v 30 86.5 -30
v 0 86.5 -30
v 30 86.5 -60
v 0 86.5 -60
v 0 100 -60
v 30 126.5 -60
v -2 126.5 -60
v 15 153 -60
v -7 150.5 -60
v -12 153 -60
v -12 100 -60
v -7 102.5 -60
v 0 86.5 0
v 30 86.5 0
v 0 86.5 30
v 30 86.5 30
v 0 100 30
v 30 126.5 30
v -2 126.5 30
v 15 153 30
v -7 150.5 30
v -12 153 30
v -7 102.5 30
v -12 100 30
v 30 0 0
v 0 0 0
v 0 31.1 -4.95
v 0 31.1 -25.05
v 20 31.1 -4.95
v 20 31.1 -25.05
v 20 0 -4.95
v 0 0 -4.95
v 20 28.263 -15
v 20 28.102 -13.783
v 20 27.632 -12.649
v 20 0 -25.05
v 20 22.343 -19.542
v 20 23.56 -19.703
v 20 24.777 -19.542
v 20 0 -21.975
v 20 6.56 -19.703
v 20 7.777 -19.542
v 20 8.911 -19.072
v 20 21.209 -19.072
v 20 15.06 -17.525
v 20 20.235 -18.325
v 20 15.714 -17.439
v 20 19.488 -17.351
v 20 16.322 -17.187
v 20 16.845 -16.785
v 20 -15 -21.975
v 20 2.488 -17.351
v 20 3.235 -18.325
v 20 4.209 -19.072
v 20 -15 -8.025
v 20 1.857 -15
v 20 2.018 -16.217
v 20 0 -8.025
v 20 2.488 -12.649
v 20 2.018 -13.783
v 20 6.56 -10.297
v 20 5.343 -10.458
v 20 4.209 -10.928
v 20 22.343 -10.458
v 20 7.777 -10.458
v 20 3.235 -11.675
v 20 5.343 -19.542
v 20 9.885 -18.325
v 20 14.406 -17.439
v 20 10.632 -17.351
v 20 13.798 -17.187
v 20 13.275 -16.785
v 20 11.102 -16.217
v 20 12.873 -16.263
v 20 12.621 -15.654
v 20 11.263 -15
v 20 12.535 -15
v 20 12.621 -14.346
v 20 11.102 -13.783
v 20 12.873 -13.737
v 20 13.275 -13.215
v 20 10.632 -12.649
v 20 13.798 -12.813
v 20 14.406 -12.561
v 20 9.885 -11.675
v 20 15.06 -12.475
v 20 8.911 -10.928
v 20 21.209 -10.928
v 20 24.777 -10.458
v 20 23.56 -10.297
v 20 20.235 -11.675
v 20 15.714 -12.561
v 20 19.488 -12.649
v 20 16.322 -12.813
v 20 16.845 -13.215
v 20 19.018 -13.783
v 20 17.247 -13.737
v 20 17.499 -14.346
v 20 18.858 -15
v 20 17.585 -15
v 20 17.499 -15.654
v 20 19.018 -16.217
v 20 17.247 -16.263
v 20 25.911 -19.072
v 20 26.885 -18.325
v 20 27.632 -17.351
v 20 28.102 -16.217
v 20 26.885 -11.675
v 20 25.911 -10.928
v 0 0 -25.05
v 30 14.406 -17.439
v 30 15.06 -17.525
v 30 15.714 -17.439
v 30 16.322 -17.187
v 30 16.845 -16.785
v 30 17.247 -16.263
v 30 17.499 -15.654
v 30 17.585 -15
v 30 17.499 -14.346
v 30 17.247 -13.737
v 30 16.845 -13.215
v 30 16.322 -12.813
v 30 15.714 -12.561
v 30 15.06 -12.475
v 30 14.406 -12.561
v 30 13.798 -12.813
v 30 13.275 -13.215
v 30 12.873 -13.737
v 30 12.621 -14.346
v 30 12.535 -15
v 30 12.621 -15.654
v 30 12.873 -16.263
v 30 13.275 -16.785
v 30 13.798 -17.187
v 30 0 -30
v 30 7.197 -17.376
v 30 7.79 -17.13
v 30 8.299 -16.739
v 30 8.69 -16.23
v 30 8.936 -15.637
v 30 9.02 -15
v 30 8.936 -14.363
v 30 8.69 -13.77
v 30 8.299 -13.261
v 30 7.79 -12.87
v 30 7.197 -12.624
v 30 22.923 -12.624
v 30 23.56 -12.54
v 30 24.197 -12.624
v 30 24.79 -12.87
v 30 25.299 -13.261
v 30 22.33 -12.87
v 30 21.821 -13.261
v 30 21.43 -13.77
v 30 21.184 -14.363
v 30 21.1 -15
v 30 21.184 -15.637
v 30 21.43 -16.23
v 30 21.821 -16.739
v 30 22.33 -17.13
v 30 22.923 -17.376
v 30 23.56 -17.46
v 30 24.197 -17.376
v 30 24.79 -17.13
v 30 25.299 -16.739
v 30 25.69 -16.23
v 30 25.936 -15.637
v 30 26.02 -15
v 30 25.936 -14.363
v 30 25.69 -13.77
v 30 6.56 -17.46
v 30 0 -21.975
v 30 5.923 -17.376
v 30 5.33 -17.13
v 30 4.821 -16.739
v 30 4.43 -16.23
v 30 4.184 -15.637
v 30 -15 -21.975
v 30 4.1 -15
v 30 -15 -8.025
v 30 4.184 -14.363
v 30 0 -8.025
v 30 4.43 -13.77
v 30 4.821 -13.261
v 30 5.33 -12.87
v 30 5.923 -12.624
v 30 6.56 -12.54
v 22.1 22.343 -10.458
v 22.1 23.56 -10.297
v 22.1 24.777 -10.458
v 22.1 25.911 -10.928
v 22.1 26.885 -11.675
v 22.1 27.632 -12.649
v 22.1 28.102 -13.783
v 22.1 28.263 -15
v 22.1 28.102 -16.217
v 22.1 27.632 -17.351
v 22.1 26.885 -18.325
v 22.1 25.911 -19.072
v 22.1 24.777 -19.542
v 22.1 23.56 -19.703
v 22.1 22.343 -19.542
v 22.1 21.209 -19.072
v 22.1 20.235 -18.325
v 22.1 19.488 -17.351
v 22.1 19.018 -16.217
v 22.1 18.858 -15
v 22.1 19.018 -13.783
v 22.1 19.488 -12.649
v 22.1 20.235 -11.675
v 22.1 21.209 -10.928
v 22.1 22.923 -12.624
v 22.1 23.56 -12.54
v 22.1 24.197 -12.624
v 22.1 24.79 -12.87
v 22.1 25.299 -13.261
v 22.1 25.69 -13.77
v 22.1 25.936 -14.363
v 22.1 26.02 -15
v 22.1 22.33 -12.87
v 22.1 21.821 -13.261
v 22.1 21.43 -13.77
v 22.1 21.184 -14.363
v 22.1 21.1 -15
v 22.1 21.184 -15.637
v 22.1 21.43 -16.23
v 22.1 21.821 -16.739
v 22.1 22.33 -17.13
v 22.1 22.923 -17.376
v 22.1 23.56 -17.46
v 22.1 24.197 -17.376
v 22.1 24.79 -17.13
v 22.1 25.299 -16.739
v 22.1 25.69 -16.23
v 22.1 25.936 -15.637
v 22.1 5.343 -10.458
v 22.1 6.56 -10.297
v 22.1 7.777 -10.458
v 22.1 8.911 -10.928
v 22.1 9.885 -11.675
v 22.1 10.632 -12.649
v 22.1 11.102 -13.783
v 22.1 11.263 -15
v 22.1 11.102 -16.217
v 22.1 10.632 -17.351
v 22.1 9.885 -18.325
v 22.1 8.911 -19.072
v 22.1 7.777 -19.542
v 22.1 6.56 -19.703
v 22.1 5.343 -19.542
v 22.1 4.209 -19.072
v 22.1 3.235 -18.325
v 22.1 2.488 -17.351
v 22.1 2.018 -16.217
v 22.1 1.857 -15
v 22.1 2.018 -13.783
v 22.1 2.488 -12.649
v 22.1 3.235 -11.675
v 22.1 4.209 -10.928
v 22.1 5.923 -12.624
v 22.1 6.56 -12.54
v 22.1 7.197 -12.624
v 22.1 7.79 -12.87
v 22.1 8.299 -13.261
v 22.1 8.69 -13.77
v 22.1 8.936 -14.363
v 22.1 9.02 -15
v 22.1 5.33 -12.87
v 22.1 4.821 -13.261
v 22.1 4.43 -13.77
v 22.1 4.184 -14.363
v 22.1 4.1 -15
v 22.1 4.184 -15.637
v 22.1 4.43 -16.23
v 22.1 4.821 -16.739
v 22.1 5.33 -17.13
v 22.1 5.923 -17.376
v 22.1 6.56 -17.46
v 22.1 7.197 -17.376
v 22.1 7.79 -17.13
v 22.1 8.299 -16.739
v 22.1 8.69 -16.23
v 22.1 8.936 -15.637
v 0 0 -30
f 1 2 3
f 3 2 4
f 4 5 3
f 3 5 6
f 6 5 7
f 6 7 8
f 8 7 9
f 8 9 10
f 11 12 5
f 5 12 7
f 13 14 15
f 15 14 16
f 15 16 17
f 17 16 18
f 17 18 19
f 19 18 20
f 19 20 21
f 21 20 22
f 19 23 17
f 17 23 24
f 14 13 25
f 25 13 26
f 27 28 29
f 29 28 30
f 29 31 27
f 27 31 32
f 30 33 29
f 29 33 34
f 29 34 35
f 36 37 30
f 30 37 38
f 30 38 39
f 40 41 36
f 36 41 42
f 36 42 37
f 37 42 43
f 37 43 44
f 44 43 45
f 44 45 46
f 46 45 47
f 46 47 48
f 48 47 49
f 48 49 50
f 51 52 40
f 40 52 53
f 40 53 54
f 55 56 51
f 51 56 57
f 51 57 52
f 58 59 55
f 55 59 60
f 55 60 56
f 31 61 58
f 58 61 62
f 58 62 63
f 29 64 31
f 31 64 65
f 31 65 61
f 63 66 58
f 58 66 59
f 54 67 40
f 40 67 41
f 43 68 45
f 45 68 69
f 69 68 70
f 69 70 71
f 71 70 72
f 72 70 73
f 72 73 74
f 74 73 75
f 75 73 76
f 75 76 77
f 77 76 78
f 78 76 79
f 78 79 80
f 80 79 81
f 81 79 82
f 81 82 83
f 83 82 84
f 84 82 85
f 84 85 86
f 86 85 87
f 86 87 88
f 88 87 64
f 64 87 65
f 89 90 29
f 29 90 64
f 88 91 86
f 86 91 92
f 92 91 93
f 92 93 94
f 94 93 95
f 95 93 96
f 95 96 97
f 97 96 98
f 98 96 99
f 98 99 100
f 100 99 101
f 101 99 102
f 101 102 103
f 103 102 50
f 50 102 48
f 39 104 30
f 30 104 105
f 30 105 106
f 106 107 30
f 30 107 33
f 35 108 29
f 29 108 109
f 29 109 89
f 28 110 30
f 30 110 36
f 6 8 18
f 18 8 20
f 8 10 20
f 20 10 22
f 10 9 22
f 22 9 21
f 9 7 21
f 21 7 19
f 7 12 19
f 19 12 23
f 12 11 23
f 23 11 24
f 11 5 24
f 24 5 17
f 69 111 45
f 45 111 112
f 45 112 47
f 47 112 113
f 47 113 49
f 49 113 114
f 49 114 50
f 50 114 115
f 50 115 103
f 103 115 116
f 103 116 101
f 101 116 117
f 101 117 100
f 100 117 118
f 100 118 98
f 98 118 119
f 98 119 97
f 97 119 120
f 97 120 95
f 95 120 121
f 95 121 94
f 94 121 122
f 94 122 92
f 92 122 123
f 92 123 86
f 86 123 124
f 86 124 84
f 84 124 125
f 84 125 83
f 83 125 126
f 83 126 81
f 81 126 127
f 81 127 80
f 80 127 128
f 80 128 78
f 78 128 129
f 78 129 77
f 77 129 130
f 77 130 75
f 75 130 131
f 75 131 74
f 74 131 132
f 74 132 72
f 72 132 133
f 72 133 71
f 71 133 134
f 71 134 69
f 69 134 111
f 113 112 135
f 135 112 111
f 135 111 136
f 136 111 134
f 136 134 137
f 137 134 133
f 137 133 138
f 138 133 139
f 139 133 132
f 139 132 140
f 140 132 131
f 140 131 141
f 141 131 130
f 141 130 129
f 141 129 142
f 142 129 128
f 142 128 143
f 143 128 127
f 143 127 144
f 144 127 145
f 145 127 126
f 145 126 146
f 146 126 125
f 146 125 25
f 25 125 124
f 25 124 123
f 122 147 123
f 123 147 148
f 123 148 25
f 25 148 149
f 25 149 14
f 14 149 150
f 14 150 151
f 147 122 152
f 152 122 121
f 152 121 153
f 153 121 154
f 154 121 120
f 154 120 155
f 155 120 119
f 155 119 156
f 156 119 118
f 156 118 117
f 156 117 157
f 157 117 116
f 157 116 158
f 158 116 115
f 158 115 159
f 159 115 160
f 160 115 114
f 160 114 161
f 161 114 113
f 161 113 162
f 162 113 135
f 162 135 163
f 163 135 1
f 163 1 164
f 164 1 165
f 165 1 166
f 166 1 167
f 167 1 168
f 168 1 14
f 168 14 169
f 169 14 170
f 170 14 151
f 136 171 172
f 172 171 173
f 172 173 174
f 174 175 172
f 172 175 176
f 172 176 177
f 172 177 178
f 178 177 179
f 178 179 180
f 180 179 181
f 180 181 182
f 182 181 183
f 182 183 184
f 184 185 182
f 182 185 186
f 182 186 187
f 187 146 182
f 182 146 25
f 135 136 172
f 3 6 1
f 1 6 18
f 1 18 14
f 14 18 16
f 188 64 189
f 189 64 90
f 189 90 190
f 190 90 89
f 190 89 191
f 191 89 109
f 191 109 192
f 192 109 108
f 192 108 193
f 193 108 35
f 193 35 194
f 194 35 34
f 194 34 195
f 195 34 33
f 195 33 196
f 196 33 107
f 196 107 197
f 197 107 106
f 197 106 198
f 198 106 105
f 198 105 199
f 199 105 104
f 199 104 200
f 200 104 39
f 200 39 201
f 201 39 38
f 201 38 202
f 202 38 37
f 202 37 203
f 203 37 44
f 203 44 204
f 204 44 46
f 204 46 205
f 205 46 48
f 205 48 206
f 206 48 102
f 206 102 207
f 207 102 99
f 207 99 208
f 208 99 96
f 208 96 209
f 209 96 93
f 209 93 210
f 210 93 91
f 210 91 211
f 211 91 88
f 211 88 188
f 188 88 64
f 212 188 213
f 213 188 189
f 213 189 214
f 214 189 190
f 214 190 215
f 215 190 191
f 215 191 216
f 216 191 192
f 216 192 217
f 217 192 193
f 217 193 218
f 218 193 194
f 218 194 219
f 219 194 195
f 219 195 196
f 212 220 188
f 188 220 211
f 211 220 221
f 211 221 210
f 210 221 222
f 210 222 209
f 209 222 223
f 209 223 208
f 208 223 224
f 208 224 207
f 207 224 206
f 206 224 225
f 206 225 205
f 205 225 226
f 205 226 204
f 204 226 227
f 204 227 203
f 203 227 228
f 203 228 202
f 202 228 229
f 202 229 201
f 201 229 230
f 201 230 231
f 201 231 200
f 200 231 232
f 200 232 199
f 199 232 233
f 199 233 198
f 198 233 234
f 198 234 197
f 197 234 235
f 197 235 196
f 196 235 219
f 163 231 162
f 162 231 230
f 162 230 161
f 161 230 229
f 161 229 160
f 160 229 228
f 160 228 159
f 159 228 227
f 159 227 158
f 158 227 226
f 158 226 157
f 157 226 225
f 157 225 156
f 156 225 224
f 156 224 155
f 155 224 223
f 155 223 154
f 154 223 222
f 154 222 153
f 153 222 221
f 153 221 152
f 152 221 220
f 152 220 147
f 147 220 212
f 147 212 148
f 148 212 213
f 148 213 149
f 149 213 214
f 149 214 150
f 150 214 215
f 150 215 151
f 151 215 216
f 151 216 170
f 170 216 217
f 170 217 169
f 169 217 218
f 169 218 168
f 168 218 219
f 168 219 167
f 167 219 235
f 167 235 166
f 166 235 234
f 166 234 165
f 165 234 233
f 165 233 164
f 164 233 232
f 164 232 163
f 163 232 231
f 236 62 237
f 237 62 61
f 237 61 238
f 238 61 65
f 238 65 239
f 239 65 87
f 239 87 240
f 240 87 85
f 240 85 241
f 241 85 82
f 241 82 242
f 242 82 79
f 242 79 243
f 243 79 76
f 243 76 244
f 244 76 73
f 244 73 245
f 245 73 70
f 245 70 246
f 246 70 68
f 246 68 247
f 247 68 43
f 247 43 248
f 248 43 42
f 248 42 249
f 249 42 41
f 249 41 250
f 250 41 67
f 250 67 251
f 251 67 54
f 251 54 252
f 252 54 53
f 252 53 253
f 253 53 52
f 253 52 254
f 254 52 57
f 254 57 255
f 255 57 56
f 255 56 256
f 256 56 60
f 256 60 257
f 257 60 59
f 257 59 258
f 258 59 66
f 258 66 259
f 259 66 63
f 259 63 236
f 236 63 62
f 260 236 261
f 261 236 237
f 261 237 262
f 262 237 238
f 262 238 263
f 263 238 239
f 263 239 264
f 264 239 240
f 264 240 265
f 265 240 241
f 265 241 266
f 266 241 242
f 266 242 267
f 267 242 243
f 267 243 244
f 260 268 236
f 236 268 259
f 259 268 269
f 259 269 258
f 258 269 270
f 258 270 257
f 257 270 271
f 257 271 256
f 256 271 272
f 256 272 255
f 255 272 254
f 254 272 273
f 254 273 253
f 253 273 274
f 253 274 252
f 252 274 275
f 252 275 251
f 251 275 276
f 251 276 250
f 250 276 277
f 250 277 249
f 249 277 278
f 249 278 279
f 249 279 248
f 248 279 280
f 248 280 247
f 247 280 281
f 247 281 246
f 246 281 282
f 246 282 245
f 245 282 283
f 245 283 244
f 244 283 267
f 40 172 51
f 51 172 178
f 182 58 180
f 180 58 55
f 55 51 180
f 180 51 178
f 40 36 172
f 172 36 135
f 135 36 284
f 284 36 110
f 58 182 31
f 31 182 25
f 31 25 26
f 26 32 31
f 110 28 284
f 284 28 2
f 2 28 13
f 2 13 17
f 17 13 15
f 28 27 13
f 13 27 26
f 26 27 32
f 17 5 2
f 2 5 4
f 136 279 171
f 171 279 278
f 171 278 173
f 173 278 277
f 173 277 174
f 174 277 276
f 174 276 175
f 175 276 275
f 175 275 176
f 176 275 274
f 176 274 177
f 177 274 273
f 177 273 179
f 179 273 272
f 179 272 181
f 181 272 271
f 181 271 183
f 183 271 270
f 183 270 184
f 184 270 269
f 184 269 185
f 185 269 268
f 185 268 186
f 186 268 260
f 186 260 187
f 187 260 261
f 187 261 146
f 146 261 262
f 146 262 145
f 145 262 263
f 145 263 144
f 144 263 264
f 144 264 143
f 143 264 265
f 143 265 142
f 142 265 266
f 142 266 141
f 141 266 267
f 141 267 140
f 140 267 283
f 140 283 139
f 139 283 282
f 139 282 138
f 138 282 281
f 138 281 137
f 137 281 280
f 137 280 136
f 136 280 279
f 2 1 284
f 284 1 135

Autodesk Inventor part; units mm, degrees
ref_plane "YZ Plane" through (0, 0, 0) normal (1, 0, 0) x (0, 1, 0)
ref_plane "XZ Plane" through (0, 0, 0) normal (0, 1, 0) x (-1, 0, 0)
sketch "Sketch1" plane through (0, 0, 0) normal (0, 0, 1) x (1, 0, 0)
  line L0 (0, 0) -> (25, 0)
  line L1 (25, 0) -> (25, 40)
  line L2 (25, 40) -> (0, 40)
  line L3 (0, 40) -> (0, 0)
  dimension "d1" = 25
  dimension "d2" = 40
  dimension "d3" = 25
extrude "Extrusion1" add sketch "Sketch1" against normal blind 30
sketch "Sketch2" plane through (25, 0, 0) normal (1, 0, 0) x (0, 0, -1)
  line L0 (0, 0) -> (30, 0) projected
  circle A0 centre (15, 6.56) radius 2.46
extrude "Extrusion2" cut sketch "Sketch2" against normal blind 30
sketch "Sketch3" plane through (0, 0, 0) normal (-1, 0, 0) x (0, 0, 1)
  line L0 (0, 0) -> (-30, 0) projected
  line L1 (-25.05, 0) -> (-4.95, 0)
  line L2 (-4.95, 0) -> (-4.95, 33.12)
  line L3 (-4.95, 33.12) -> (-25.05, 33.12)
  line L4 (-25.05, 33.12) -> (-25.05, 0)
  dimension "d11" = 20.1
extrude "Extrusion3" cut sketch "Sketch3" against normal blind 20
sketch "Sketch4" plane through (0, 0, 0) normal (0, -1, 0) x (1, 0, 0)
  line L0 (20, -4.95) -> (20, -25.05) projected
  line L1 (20, -15) -> (25, -15)
  line L2 (25, 0) -> (25, -30) projected
  line L3 (20, -8.025) -> (25, -8.025)
  line L4 (25, -8.025) -> (25, -21.975)
  line L5 (25, -21.975) -> (20, -21.975)
  line L6 (20, -21.975) -> (20, -8.025)
  line L7 (20, -8.025) -> (25, -21.975) construction
  line L8 (25, -8.025) -> (20, -21.975) construction
  line L9 (25, -12.54) -> (25, -17.46) projected
  point P0 (0, 0)
  point P1 (22.5, -15)
  dimension "d14" = 13.95
extrude "Extrusion4" add sketch "Sketch4" along normal blind 15
sketch "Sketch5" plane through (20, 0, 0) normal (-1, 0, 0) x (0, 0, 1)
  circle A0 centre (-15, 6.56) radius 2.46 projected
  circle A1 centre (-15, 6.56) radius 4.7025
  circle A2 centre (-15, 6.56) radius 2.46 projected
  circle A3 centre (-15, 6.56) radius 2.46
  point P0 (0, 0)
  dimension "d17" = 9.405
extrude "Extrusion5" cut sketch "Sketch5" against normal blind 2.1
sketch "Sketch6" plane through (25, 0, 0) normal (1, 0, 0) x (0, 0, -1)
  circle A0 centre (15, 6.56) radius 4.7025 projected
  line L0 (15, 6.56) -> (15, 23.56)
  circle A1 centre (15, 23.56) radius 2.46
  point P0 (0, 0)
  dimension "d20" = 17
  dimension "d21" = 4.92
extrude "Extrusion6" cut sketch "Sketch6" against normal blind 10 contours A1
sketch "Sketch7" plane through (20, 0, 0) normal (-1, 0, 0) x (0, 0, 1)
  circle A0 centre (-15, 23.56) radius 2.46 projected
  circle A1 centre (-15, 23.56) radius 4.7025
  point P0 (0, 0)
  dimension "d24" = 9.405
extrude "Extrusion7" cut sketch "Sketch7" against normal blind 2.1
sketch "Sketch9" plane through (25, 0, 0) normal (1, 0, 0) x (0, 0, -1)
  circle A0 centre (15, 6.56) radius 2.46 projected
  circle A1 centre (15, 6.56) radius 2.46
  circle A2 centre (15, 23.56) radius 2.46 projected
  circle A3 centre (15, 23.56) radius 2.46
  line L0 (30, 40) -> (30, 0) projected
  line L1 (30, 0) -> (30, 40)
  line L2 (30, 40) -> (0, 40)
  line L3 (0, 40) -> (0, 0)
  line L4 (0, 0) -> (8.025, 0) projected
  line L5 (21.975, 0) -> (21.975, -15)
  line L6 (21.975, -15) -> (8.025, -15)
  line L7 (8.025, -15) -> (8.025, 0)
  line L8 (0, 0) -> (8.025, 0)
  line L9 (21.975, 0) -> (30, 0)
extrude "Extrusion8" add sketch "Sketch9" along normal blind 5
sketch "Sketch10" plane through (0, 40, 0) normal (0, 1, 0) x (1, 0, 0)
  line L0 (0, 30) -> (30, 30) projected
  line L1 (30, 0) -> (0, 0) projected
  line L2 (0, 30) -> (30, 30)
  line L3 (30, 30) -> (30, 0)
  line L4 (30, 0) -> (0, 0)
  line L5 (0, 0) -> (0, 30)
extrude "Extrusion9" add sketch "Sketch10" along normal blind 30
sketch "Sketch12" plane through (30, 0, 0) normal (1, 0, 0) x (0, 0, -1)
  circle A0 centre (15, 6.56) radius 2.46 projected
  line L0 (15, 6.56) -> (15, 15.06)
  circle A1 centre (15, 15.06) radius 2.525
  point P0 (0, 0)
  dimension "d31" = 8.5
  dimension "d33" = 5.05
extrude "Extrusion10" cut sketch "Sketch12" against normal blind 30 contours A1
sketch "Sketch14" plane through (0, 0, 0) normal (0, 0, 1) x (1, 0, 0)
  line L0 (30, 70) -> (0, 70) projected
  line L1 (0, 70) -> (0, 85)
  line L2 (30, 0) -> (30, 70) projected
  line L3 (30, 122.5) -> (30, 70)
  line L4 (30, 105) -> (30, 100)
  line L5 (-12, 153) -> (15, 153)
  line L6 (-7, 150.5) -> (-12, 153)
  line L7 (-7, 102.5) -> (-12, 100)
  line L8 (-7, 102.5) -> (-2, 126.5)
  line L9 (-2, 126.5) -> (-7, 150.5)
  line L10 (30, 126.5) -> (15, 153)
  line L11 (30, 122.5) -> (30, 126.5)
  line L12 (0, 85) -> (0, 100)
  line L13 (0, 100) -> (-12, 100)
  point P0 (0, 0)
  dimension "d90" = 12
extrude "Extrusion12" add sketch "Sketch14" against normal blind 30
sketch "Sketch15" plane through (0, 0, -25.05) normal (-1, 0, 0) x (0, 0, 1)
  line L0 (0, 33.12) -> (20.1, 33.12) projected
  line L1 (20.1, 33.12) -> (20.1, 0) projected
  line L2 (0, 33.12) -> (20.1, 33.12)
  line L3 (20.1, 33.12) -> (20.1, 31.1)
  line L4 (20.1, 31.1) -> (0, 31.1)
  line L5 (0, 31.1) -> (0, 33.12)
  point P0 (25.05, 0)
  dimension "d57" = 2.02
extrude "Extrusion13" add sketch "Sketch15" against normal blind 20
sketch "Sketch25" plane through (0, 0, 0) normal (0, 0, 1) x (1, 0, 0)
  line L0 (0, 100) -> (-12, 100) projected
  line L1 (0, 100) -> (-12, 100)
  line L2 (-12, 100) -> (-7, 102.5) projected
  line L3 (-12, 100) -> (-7, 102.5)
  line L4 (-7, 102.5) -> (-2, 126.5) projected
  line L5 (-7, 102.5) -> (-2, 126.5)
  line L6 (-2, 126.5) -> (-7, 150.5) projected
  line L7 (-2, 126.5) -> (-7, 150.5)
  line L8 (-7, 150.5) -> (-12, 153) projected
  line L9 (-7, 150.5) -> (-12, 153)
  line L10 (-12, 153) -> (15, 153) projected
  line L11 (-12, 153) -> (15, 153)
  line L12 (15, 153) -> (30, 126.5) projected
  line L13 (15, 153) -> (30, 126.5)
  line L14 (30, 126.5) -> (30, 86.5)
  line L15 (30, 0) -> (30, 126.5) projected
  line L16 (30, 86.5) -> (0, 86.5)
  line L17 (0, 100) -> (0, 0) projected
  line L18 (0, 86.5) -> (0, 100)
  dimension "d91" = 40
  dimension "d92" = 30
extrude "Extrusion14" add sketch "Sketch25" along normal blind 30
ref_plane "Work Plane1" through (0, 0, -15) normal (0, 0, 1) x (1, 0, 0)
mirror "Mirror1" about plane through (0, 0, -15) normal (0, 0, 1) of "Extrusion14"
properties part number "rec_b_48mm_x_90mm"
